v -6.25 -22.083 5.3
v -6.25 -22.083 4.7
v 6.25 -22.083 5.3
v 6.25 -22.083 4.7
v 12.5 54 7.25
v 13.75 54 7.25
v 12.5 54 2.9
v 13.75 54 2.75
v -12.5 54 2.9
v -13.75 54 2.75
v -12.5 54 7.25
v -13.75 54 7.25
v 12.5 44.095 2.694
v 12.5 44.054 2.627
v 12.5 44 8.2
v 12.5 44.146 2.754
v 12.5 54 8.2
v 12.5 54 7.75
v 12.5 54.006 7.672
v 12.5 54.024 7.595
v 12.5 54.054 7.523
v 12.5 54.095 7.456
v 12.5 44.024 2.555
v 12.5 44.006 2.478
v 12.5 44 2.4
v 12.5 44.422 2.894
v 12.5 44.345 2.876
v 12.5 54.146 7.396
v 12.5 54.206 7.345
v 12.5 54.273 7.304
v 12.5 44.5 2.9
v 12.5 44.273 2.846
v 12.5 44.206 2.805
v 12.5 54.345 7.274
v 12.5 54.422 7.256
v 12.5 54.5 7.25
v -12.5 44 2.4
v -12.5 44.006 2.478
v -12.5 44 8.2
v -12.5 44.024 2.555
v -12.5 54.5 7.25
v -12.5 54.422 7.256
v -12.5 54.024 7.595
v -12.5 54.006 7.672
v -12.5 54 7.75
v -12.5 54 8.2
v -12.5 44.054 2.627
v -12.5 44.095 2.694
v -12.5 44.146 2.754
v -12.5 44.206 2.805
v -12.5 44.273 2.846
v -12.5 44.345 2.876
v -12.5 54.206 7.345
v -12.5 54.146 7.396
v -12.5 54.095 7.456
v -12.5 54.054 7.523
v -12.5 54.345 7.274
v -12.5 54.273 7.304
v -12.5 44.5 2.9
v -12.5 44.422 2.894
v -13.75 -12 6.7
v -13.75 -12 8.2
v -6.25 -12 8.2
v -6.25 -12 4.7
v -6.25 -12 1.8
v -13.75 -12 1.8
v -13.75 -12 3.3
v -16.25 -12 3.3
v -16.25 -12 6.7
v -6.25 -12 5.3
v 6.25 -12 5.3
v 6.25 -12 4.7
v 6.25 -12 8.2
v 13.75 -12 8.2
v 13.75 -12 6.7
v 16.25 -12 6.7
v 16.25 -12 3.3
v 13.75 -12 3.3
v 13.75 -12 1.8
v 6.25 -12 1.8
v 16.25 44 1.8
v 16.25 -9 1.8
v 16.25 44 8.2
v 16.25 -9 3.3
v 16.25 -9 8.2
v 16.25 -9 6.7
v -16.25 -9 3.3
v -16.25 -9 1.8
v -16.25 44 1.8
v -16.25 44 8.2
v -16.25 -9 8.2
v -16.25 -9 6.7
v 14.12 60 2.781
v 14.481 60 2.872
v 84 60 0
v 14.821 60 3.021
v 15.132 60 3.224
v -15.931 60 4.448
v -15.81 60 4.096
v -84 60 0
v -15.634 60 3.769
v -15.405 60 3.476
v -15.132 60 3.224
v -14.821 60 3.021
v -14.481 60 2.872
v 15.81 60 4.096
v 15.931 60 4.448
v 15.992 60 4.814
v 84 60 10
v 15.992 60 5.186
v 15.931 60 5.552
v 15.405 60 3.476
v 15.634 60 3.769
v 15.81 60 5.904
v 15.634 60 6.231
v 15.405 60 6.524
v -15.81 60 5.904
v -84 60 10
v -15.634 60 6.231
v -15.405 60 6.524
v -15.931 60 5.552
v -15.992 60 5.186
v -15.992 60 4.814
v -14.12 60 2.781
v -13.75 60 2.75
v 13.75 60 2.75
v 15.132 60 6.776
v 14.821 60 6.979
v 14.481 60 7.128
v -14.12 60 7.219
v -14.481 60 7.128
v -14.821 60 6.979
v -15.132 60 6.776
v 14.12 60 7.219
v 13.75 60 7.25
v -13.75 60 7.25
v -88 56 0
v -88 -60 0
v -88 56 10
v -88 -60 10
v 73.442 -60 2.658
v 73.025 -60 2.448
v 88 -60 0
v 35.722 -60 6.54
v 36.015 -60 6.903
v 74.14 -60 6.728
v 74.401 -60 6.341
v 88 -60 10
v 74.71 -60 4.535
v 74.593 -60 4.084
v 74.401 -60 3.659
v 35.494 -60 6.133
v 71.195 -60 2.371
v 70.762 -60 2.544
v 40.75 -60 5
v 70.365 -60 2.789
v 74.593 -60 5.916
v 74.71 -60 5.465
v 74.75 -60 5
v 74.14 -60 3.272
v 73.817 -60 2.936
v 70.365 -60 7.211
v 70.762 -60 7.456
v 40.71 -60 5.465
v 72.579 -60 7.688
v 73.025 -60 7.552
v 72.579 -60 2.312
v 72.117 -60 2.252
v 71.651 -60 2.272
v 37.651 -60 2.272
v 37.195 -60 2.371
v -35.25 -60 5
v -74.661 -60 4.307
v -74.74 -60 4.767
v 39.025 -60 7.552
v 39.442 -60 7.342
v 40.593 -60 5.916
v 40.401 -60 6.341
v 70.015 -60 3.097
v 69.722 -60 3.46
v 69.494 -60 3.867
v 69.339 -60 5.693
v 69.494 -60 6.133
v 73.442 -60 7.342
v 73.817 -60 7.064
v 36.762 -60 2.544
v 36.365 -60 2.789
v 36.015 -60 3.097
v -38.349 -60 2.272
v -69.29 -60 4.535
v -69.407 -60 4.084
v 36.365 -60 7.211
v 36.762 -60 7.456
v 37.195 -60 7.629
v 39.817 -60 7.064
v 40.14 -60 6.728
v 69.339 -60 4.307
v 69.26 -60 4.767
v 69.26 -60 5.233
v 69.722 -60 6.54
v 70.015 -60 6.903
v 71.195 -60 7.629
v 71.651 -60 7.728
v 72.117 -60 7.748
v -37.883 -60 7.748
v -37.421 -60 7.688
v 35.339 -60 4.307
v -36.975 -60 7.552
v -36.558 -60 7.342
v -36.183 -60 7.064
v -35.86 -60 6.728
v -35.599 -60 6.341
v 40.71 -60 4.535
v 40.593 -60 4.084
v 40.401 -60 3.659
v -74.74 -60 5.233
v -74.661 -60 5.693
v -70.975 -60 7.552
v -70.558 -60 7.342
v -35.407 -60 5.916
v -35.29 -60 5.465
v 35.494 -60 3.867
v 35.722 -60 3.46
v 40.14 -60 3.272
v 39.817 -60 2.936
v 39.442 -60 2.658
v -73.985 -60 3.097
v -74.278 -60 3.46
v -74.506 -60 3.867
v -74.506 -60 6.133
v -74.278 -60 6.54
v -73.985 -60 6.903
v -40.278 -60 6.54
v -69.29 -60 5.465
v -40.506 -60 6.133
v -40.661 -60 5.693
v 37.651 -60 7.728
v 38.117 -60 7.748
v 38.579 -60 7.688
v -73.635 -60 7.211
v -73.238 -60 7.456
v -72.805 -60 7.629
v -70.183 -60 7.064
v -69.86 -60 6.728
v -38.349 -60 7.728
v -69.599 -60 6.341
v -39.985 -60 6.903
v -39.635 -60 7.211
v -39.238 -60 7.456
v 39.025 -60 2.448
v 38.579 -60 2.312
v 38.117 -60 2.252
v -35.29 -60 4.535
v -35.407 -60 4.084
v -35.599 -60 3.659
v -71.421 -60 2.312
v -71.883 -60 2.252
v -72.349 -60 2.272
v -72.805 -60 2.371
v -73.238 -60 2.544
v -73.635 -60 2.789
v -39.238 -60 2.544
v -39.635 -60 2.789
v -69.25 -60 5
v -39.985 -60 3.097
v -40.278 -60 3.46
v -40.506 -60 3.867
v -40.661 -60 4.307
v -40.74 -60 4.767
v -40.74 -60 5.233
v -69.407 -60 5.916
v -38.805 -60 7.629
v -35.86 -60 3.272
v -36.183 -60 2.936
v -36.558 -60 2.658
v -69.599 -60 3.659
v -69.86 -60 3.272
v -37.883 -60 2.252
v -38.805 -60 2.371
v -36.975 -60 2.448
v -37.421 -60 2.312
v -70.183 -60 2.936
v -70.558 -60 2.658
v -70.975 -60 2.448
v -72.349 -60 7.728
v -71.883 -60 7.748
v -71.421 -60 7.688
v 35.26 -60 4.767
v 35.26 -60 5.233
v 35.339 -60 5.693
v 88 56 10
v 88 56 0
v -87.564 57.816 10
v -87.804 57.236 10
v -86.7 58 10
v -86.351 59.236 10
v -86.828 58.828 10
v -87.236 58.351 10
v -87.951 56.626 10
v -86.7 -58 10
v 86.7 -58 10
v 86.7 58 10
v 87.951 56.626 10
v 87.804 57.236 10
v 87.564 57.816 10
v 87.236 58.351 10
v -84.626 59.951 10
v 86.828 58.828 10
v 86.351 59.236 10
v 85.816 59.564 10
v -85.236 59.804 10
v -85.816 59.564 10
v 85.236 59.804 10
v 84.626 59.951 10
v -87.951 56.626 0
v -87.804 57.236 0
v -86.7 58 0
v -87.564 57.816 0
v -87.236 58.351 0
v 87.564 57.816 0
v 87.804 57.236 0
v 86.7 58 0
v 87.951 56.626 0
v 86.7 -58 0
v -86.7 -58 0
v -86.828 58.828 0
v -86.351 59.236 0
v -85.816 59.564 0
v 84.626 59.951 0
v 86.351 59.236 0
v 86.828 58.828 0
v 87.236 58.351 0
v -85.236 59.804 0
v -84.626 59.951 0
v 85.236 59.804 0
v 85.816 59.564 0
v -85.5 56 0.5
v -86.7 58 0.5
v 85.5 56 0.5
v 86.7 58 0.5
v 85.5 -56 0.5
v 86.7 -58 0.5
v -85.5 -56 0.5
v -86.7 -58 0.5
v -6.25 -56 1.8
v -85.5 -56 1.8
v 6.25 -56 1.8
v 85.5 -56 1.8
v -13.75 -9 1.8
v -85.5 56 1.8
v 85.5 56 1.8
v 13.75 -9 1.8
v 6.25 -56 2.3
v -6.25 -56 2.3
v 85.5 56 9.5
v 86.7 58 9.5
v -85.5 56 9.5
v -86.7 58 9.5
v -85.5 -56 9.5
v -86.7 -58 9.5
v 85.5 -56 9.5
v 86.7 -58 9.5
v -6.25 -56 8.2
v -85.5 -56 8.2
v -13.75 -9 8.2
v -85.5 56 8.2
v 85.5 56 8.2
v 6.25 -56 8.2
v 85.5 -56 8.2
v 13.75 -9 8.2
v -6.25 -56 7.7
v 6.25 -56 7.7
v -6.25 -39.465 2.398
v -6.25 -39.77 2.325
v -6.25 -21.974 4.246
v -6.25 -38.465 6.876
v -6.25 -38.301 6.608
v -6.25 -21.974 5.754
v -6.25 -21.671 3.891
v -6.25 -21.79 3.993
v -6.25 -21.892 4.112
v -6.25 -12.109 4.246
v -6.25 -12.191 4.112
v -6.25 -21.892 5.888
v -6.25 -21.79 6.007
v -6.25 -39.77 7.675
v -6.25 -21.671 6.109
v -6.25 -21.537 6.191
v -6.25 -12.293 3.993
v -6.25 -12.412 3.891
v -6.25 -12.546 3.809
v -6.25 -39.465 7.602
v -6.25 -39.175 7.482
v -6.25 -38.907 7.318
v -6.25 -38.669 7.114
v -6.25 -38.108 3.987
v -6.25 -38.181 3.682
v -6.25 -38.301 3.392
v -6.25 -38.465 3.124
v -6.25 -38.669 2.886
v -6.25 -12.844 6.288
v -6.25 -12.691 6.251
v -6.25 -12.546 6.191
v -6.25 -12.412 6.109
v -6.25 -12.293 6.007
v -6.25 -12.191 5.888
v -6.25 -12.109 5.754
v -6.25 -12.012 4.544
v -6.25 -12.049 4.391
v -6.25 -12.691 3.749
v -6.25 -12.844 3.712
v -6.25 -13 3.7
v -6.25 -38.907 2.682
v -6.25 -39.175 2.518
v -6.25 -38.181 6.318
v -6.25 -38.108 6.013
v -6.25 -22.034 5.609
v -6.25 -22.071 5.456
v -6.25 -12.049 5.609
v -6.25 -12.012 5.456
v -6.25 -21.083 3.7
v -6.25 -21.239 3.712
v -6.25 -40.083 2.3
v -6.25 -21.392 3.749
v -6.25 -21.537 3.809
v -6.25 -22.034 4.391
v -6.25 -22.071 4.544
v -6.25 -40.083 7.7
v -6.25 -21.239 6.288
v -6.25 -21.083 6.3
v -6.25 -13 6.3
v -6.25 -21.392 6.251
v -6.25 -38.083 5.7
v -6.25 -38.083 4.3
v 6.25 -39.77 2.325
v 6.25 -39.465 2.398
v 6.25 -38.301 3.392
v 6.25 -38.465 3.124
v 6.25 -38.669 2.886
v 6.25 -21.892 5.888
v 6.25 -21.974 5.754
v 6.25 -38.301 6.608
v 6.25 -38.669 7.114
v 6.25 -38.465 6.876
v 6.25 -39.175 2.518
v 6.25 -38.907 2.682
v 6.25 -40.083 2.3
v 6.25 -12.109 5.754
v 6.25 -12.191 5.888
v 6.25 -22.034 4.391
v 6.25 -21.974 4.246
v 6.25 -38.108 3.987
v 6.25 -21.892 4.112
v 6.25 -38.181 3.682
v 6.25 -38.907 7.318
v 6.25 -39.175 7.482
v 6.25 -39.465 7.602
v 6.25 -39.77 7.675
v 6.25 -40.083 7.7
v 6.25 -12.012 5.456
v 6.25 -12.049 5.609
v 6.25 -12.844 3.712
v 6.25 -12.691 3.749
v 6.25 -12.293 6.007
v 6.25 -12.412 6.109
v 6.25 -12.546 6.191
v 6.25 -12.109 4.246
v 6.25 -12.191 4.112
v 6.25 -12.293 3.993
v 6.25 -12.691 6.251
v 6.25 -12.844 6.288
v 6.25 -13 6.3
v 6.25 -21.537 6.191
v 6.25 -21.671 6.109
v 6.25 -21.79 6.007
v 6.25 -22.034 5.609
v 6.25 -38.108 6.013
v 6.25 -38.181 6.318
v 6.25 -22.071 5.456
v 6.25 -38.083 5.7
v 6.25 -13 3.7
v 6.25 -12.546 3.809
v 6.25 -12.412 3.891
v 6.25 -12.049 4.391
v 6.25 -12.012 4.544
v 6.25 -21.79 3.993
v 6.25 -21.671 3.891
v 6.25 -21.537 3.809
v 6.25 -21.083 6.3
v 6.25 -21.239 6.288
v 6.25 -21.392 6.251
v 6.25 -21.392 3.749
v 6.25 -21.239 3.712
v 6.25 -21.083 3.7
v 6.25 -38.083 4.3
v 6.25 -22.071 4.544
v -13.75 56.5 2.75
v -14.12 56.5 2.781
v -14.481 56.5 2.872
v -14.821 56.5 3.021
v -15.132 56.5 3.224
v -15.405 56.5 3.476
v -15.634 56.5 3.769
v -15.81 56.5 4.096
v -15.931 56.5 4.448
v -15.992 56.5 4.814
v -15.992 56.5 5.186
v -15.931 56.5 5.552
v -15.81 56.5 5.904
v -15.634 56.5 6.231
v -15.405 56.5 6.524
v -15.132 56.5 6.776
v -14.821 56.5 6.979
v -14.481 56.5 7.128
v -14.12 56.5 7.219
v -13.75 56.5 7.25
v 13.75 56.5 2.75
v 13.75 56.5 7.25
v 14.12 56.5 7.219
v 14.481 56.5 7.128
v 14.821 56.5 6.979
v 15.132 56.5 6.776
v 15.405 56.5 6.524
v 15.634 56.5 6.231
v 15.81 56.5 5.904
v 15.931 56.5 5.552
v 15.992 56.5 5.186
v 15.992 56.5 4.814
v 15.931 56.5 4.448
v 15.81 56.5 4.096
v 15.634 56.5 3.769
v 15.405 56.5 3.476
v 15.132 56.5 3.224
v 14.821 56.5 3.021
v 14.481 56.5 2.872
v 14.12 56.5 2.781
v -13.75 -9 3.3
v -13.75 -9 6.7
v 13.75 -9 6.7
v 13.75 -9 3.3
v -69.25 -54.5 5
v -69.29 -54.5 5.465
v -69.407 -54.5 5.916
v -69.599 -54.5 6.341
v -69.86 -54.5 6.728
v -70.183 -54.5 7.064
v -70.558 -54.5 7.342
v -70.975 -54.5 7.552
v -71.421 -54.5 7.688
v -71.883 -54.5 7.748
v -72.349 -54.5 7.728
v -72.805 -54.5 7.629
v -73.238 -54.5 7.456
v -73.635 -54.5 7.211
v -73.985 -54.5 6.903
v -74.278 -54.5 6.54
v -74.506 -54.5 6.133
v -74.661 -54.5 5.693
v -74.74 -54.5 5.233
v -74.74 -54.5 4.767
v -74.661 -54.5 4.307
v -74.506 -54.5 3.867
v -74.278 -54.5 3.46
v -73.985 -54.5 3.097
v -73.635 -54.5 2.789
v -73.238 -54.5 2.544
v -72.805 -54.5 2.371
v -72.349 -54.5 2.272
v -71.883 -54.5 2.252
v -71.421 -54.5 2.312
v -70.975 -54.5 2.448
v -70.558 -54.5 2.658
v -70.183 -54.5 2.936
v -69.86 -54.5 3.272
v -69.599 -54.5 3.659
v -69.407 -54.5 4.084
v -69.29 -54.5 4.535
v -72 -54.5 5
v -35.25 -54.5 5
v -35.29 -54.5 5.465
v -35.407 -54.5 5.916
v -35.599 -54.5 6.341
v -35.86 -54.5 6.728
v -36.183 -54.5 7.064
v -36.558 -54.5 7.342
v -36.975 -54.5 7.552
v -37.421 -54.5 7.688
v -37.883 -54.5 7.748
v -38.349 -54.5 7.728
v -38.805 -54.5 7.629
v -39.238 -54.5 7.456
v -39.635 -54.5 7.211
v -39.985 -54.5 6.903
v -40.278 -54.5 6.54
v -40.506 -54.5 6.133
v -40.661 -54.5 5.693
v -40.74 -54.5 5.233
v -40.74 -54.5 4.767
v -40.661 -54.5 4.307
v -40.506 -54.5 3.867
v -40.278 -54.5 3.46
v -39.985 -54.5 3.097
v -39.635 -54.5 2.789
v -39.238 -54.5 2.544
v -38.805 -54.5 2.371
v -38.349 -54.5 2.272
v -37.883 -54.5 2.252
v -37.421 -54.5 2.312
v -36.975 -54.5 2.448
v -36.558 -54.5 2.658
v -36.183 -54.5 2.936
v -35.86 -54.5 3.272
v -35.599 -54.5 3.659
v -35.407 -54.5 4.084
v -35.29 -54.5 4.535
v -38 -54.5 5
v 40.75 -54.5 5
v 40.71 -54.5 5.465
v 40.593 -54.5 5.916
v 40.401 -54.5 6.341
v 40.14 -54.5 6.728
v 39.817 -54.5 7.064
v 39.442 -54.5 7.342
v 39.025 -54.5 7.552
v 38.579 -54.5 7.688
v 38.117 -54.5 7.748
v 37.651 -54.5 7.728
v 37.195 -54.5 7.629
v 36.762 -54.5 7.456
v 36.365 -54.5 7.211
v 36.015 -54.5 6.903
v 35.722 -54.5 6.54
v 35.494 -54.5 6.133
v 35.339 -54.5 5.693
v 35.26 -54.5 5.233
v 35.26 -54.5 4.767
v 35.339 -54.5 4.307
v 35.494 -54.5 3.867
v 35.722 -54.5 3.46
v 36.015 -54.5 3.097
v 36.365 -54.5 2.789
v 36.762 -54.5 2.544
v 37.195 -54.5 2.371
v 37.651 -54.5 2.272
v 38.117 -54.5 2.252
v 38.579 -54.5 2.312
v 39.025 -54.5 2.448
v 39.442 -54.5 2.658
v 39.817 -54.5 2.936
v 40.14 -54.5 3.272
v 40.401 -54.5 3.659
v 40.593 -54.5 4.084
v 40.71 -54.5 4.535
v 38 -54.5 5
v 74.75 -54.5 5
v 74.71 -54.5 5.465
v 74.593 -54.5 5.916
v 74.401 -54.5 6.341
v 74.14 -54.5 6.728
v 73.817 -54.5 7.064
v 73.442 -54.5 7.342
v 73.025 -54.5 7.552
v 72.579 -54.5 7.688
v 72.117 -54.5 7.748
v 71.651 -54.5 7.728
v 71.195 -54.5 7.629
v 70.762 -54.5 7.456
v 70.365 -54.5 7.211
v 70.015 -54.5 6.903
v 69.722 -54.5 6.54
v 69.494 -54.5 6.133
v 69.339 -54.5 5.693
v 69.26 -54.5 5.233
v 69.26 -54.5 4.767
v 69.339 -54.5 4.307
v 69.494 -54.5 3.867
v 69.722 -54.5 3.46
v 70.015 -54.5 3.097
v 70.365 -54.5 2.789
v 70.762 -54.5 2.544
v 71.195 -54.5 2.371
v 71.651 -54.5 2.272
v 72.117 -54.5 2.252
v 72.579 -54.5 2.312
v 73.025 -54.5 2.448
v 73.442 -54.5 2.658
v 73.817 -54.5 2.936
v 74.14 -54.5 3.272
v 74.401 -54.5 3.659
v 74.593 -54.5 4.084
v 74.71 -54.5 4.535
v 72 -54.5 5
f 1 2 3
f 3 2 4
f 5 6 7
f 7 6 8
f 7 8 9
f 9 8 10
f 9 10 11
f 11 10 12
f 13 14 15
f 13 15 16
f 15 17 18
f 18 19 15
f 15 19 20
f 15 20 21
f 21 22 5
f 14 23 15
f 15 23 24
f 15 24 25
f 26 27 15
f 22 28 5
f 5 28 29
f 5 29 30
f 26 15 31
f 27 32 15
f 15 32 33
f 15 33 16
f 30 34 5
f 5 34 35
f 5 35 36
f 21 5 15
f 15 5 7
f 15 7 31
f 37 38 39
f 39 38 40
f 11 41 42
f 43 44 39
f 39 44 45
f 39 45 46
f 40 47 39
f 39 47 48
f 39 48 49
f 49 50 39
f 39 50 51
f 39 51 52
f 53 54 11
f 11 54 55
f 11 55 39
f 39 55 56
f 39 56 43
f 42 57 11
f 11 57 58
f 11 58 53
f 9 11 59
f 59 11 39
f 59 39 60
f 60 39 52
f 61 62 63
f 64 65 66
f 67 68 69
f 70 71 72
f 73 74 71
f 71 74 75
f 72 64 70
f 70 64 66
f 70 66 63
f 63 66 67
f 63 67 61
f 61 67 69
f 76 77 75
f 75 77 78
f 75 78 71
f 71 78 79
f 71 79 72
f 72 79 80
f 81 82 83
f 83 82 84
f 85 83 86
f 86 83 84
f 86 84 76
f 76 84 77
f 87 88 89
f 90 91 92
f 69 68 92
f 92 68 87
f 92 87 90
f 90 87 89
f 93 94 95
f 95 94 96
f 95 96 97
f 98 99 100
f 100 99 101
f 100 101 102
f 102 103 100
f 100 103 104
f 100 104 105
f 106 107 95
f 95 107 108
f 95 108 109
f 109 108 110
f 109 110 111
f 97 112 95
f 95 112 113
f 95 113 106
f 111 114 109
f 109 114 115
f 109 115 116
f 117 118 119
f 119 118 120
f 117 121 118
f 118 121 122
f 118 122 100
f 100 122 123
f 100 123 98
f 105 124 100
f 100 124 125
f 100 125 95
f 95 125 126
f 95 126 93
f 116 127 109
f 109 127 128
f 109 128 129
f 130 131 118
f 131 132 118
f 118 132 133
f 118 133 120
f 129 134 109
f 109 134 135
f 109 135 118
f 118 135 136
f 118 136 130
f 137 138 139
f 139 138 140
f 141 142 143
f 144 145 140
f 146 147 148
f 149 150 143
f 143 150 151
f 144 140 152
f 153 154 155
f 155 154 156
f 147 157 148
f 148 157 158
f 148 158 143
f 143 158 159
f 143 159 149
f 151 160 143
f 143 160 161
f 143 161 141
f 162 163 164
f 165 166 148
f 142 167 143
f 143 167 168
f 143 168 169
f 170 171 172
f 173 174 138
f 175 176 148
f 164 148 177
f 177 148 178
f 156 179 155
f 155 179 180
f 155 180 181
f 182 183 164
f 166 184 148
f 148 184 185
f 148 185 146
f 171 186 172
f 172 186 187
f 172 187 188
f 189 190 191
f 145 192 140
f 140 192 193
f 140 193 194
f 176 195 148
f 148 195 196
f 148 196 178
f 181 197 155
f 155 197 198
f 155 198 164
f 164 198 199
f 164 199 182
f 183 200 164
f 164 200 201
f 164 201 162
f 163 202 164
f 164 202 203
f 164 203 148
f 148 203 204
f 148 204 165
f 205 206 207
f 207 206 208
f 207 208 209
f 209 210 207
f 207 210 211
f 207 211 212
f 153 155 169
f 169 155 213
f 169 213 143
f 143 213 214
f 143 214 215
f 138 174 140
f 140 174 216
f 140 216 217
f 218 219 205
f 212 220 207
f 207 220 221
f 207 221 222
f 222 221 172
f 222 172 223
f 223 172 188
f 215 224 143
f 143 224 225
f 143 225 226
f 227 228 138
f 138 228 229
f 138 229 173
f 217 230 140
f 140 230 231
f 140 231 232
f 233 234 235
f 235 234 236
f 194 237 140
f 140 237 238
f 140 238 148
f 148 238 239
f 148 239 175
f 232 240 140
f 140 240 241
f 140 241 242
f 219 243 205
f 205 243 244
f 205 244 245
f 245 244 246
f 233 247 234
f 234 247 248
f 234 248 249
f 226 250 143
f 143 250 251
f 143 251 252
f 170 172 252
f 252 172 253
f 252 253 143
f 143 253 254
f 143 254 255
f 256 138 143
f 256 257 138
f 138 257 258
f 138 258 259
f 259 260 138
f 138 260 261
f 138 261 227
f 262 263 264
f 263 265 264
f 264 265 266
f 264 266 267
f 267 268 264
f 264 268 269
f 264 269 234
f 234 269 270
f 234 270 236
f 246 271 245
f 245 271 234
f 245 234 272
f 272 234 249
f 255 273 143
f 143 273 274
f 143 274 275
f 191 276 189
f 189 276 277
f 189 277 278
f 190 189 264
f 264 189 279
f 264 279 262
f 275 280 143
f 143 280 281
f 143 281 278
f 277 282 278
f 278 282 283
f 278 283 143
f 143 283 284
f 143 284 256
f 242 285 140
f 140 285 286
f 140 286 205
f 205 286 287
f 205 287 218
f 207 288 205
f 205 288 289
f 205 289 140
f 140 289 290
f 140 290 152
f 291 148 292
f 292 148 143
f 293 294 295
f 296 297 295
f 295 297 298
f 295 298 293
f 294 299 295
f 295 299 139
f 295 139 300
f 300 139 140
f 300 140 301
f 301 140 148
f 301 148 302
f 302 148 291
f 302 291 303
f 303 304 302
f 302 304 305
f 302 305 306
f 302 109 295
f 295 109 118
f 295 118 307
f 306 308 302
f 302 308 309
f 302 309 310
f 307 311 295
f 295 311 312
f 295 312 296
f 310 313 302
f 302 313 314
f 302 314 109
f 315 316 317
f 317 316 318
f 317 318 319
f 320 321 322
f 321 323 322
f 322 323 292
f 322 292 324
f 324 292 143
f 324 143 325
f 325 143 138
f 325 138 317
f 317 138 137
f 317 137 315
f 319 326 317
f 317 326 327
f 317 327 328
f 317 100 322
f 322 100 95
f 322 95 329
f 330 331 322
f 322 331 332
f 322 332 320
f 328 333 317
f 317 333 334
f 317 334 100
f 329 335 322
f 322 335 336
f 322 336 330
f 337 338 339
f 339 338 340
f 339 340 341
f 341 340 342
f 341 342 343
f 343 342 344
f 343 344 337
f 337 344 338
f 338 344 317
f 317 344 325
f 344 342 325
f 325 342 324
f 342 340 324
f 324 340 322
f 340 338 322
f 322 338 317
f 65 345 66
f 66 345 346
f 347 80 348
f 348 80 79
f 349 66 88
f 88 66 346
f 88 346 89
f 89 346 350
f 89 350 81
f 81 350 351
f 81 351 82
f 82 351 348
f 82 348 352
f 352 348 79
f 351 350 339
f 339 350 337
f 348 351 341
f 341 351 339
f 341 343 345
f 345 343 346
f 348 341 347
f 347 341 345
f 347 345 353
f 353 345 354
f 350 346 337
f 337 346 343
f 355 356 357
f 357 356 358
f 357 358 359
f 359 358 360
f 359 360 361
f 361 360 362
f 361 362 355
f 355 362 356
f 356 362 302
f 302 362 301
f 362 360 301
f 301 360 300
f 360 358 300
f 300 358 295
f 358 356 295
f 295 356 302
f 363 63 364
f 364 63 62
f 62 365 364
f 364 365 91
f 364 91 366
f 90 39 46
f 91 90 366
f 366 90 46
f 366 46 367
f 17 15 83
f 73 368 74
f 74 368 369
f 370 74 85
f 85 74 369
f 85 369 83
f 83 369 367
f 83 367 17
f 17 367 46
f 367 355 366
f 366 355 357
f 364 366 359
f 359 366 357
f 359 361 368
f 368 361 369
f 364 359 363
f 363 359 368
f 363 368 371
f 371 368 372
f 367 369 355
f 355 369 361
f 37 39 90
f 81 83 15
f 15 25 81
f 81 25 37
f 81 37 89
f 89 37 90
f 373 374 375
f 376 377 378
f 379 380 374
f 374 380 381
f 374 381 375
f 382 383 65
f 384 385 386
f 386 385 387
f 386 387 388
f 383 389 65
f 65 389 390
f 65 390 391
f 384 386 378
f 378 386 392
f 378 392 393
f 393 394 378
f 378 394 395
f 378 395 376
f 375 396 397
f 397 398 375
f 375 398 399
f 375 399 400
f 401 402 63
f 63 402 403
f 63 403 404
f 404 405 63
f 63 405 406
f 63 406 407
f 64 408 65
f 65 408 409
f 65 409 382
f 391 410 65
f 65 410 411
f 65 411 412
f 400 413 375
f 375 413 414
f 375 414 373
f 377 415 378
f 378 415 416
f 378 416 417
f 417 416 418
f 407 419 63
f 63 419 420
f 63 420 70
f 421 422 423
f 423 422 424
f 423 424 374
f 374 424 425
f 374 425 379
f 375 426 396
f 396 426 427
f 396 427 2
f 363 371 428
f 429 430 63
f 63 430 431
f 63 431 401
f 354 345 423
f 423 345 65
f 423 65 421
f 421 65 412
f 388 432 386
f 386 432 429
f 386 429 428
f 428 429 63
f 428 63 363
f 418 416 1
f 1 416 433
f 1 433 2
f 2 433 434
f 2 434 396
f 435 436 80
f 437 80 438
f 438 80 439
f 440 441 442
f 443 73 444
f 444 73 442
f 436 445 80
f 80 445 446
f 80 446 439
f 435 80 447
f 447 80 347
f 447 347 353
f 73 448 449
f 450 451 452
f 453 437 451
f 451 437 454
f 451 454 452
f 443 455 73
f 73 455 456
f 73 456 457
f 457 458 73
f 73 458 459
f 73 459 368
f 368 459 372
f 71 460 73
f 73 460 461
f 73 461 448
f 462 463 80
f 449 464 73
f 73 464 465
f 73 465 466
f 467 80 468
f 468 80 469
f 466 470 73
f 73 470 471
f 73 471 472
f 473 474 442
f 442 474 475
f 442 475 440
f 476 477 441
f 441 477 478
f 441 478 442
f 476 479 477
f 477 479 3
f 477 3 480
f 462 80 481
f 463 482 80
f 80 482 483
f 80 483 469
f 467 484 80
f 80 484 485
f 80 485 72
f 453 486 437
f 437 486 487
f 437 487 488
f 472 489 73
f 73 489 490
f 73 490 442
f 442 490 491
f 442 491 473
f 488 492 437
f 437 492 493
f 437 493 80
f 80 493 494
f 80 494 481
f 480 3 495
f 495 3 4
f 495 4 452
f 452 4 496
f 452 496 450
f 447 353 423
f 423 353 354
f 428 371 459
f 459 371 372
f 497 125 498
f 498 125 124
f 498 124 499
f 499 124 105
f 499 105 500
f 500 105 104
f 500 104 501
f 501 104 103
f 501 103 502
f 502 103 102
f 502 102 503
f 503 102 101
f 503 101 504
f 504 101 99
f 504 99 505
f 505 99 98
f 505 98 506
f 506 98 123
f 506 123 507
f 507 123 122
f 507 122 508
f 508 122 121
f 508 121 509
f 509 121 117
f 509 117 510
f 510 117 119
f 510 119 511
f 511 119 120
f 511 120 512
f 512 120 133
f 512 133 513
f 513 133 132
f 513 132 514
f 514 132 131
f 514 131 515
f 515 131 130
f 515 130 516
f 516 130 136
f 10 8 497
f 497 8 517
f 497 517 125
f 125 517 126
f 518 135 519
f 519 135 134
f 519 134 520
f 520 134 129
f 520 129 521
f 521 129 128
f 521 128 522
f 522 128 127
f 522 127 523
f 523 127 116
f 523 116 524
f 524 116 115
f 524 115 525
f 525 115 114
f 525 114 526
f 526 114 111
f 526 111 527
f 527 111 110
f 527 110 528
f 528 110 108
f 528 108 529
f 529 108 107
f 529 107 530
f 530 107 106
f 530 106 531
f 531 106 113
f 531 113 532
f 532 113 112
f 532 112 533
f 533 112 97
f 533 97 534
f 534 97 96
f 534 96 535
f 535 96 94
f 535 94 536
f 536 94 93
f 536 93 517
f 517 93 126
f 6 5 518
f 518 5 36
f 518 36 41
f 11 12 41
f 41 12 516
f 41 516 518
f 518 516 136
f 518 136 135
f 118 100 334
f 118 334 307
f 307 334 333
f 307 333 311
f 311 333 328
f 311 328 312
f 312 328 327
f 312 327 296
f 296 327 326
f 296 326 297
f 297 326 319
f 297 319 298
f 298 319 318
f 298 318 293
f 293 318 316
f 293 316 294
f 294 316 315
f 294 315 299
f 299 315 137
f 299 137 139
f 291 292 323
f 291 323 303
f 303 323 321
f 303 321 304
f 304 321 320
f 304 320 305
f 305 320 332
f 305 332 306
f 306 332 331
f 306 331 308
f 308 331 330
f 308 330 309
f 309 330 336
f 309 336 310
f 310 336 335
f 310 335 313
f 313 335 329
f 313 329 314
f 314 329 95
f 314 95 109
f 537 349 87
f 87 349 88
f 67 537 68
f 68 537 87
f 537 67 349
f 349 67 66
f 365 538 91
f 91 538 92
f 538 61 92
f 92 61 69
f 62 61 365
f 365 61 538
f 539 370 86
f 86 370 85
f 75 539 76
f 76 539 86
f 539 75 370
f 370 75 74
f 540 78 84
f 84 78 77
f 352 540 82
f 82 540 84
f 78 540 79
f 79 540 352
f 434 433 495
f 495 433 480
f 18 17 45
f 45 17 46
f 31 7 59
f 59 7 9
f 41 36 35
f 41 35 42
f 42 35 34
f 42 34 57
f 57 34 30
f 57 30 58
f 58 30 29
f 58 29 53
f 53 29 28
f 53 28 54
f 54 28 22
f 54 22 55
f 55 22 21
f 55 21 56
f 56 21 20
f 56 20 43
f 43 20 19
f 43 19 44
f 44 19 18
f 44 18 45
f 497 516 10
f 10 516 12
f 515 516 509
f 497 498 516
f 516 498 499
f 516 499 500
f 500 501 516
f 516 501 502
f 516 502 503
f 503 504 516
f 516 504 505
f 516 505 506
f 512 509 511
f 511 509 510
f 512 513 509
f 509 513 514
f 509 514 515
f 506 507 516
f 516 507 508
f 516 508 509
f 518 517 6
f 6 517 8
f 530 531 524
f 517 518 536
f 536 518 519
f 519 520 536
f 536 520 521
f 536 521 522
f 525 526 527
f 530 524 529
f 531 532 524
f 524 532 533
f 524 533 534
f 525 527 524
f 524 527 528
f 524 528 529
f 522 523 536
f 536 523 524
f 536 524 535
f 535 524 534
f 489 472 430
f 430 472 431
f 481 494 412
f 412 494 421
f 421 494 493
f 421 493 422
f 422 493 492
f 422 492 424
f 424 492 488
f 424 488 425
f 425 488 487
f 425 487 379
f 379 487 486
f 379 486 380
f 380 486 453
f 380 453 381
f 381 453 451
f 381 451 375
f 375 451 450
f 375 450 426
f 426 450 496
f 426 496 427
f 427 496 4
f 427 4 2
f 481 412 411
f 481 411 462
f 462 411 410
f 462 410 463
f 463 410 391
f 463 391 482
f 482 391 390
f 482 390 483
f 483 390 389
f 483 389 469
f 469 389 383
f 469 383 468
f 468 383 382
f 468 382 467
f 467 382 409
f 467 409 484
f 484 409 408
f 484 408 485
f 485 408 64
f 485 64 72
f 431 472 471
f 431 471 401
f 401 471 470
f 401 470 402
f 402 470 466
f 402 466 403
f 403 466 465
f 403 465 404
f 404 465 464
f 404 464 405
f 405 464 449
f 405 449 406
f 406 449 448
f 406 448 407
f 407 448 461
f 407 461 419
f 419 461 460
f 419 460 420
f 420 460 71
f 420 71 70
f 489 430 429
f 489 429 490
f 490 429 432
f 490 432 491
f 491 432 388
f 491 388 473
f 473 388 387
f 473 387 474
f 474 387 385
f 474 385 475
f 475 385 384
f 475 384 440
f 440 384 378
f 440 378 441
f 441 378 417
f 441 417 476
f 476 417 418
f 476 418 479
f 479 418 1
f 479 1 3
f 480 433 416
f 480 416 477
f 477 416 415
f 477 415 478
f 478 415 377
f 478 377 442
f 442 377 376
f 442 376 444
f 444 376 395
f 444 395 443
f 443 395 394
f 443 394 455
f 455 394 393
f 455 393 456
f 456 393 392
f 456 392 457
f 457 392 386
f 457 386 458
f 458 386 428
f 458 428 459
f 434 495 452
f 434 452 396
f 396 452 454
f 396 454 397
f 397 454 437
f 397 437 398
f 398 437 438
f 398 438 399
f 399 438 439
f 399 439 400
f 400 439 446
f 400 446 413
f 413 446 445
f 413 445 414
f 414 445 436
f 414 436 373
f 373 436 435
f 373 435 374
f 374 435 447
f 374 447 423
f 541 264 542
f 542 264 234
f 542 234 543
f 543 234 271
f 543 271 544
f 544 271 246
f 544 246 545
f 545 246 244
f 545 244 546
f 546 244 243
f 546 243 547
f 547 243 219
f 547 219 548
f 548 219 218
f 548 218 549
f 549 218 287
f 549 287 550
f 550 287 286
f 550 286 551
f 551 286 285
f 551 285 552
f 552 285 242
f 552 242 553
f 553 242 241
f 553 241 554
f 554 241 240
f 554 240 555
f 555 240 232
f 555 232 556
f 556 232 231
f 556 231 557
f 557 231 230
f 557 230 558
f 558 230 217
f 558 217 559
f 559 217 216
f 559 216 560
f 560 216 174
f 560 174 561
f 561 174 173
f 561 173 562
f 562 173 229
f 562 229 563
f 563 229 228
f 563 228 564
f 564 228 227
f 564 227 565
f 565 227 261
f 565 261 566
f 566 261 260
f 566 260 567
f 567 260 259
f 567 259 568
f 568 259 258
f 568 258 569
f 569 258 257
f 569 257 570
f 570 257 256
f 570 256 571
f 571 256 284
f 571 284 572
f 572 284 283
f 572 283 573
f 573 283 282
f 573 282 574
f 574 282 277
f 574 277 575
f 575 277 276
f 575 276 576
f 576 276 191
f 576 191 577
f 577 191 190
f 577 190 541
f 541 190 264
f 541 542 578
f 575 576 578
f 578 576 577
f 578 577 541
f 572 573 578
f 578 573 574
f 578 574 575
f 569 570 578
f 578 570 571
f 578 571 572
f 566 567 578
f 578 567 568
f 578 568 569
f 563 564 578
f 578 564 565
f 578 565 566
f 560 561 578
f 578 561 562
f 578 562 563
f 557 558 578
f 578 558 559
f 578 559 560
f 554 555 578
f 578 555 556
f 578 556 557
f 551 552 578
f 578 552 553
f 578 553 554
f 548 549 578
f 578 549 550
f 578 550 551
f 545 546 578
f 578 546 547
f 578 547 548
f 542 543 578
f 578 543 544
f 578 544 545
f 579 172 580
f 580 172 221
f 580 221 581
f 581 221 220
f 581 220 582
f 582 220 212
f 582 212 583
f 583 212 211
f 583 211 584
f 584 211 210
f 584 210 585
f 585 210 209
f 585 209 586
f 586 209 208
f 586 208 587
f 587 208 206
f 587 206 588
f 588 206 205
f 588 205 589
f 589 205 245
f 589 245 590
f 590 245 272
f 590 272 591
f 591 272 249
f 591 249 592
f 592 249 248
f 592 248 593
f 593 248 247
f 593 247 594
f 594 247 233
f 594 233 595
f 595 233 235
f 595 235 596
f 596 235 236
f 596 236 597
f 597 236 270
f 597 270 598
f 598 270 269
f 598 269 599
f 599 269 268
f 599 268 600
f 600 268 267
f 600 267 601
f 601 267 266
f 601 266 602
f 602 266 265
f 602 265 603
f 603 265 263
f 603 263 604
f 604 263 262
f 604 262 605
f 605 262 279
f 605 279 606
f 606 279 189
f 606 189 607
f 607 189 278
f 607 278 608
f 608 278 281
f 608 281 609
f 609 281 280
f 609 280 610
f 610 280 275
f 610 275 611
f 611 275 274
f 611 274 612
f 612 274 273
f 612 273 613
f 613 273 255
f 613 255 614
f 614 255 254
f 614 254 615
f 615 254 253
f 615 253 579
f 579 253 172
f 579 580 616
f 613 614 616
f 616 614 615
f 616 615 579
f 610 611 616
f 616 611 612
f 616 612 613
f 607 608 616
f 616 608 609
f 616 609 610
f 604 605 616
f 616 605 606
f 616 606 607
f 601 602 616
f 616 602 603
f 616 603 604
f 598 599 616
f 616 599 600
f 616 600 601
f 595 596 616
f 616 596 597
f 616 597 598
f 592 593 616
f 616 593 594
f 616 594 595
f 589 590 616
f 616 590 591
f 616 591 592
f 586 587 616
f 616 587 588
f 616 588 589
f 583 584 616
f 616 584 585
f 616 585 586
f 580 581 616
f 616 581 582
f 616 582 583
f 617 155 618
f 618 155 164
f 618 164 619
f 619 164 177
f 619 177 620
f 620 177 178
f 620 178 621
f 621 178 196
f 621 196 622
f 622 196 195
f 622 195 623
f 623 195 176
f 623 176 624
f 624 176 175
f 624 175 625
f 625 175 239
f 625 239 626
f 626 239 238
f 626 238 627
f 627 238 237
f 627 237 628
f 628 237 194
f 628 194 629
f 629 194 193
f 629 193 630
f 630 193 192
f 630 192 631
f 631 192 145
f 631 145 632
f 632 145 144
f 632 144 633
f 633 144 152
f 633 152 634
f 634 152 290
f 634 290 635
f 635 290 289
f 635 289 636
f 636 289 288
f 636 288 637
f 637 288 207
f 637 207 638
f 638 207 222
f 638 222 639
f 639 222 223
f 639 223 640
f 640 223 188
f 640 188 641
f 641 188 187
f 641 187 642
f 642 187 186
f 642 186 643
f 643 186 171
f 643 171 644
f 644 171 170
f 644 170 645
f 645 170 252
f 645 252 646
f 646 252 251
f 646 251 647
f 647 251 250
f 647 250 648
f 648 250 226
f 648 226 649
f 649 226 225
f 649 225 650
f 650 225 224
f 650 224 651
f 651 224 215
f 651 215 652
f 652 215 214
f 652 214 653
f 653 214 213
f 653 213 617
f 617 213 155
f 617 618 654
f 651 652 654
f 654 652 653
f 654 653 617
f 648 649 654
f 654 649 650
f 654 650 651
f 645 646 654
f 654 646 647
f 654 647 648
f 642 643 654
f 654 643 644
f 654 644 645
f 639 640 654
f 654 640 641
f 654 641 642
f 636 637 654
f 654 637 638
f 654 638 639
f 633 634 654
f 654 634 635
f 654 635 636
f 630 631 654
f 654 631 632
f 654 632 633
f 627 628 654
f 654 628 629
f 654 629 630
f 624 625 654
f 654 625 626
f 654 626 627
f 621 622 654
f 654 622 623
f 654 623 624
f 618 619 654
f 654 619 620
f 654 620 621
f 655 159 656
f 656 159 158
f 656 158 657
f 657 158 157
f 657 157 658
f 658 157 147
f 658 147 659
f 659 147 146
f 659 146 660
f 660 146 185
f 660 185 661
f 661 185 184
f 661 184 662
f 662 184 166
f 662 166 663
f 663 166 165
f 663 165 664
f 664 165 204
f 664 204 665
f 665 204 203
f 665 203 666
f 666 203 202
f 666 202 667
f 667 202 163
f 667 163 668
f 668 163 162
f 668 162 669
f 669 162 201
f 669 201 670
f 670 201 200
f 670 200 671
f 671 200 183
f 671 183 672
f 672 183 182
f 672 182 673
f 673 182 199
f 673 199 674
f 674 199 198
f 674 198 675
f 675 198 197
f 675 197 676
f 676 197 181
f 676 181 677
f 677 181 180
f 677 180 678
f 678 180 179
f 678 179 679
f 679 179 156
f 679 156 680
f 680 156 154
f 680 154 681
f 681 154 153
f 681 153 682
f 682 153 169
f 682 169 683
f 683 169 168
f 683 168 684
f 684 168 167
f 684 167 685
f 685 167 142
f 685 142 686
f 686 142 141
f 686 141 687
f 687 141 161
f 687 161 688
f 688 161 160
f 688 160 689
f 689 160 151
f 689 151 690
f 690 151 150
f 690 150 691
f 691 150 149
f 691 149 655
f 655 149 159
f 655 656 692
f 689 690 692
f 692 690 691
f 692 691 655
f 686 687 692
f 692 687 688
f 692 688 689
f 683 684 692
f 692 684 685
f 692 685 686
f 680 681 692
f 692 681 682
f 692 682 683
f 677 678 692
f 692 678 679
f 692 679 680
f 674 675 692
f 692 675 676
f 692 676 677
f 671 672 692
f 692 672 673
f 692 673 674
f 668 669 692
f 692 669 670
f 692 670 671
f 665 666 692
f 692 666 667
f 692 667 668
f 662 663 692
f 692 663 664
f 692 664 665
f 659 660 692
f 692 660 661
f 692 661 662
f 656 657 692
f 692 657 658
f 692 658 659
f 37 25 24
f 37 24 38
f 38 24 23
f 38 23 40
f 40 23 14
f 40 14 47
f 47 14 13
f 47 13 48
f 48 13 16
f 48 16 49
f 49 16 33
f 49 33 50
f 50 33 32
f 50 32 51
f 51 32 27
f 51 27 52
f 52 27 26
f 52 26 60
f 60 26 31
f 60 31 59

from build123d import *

# Parameters (mm, degrees)
SKETCH_1_W           = 176
SKETCH_1_H           = 120
EXTRUDE_1_DEPTH      = 10
SKETCH_2_W           = 171
SKETCH_2_H           = 112
CUT_EXTRUDE_1_DEPTH  = 1.8
SKETCH_3_W           = 171
SKETCH_3_H           = 112
CUT_EXTRUDE_2_DEPTH  = 1.8
SKETCH_5_W           = 173.4
SKETCH_5_H           = 116
CUT_EXTRUDE_3_DEPTH  = 0.5
SKETCH_6_W           = 173.4
SKETCH_6_H           = 116
CUT_EXTRUDE_4_DEPTH  = 0.5
SKETCH_7_W           = 32.5
SKETCH_7_H           = 56
CUT_EXTRUDE_5_DEPTH  = 107.823405675
SKETCH_8_W           = 12.5
SKETCH_8_H           = 44
CUT_EXTRUDE_6_DEPTH  = 0.5
SKETCH_9_W           = 12.5
SKETCH_9_H           = 44
CUT_EXTRUDE_7_DEPTH  = 0.5
SKETCH_10_W          = 25
SKETCH_10_H          = 12
CUT_EXTRUDE_8_DEPTH  = 0.8
CUT_EXTRUDE_10_DEPTH = 6
FILLET_1_R           = 4
FILLET_2_R           = 4
SKETCH_18_W          = 1.5
SKETCH_18_H          = 3
EXTRUDE_3_DEPTH      = 2.5
SKETCH_20_W          = 1.5
SKETCH_20_H          = 3
EXTRUDE_4_DEPTH      = 2.5
SKETCH_21_W          = 12.5
SKETCH_21_H          = 16
CUT_EXTRUDE_12_DEPTH = 107.786188245
SKETCH_22_W          = 25
SKETCH_22_H          = 10
CUT_EXTRUDE_13_DEPTH = 4.5
SKETCH_23_W          = 25
SKETCH_23_H          = 2
EXTRUDE_5_DEPTH      = 0.8
FILLET_15_R          = 0.5
EXTRUDE_START        = 2.5
EXTRUDE_6_DEPTH      = 2.5
SKETCH_25_W          = 12.5
SKETCH_25_H          = 10.082968054
CUT_EXTRUDE_14_DEPTH = 1.4
SKETCH_26_W          = 12.5
SKETCH_26_H          = 10.082968054
CUT_EXTRUDE_15_DEPTH = 1.4
FILLET_16_R          = 1
FILLET_17_R          = 1
FILLET_18_R          = 1
FILLET_19_R          = 1
FILLET_21_R          = 2
FILLET_22_R          = 2
SKETCH_28_R          = 2.75
CUT_EXTRUDE_16_DEPTH = 5.5
FILLET_23_R          = 0.5


with BuildPart() as part:
    # 草图1 → 凸台-拉伸1 (new body)
    with BuildSketch(Plane.XY):
        Rectangle(SKETCH_1_W, SKETCH_1_H)
    extrude(amount=EXTRUDE_1_DEPTH)

    # 草图2 → 切除-拉伸1 (cut)
    with BuildSketch(Plane.XY.offset(10)):
        Rectangle(SKETCH_2_W, SKETCH_2_H)
    extrude(amount=-CUT_EXTRUDE_1_DEPTH, mode=Mode.SUBTRACT)

    # 草图3 → 切除-拉伸2 (cut)
    with BuildSketch(Plane(origin=(0, 0, 0), x_dir=(-1, 0, 0), z_dir=(0, 0, -1))):
        Rectangle(SKETCH_3_W, SKETCH_3_H)
    extrude(amount=-CUT_EXTRUDE_2_DEPTH, mode=Mode.SUBTRACT)

    # 草图5 → 切除-拉伸3 (cut)
    with BuildSketch(Plane(origin=(0, 0, 0), x_dir=(-1, 0, 0), z_dir=(0, 0, -1))):
        Rectangle(SKETCH_5_W, SKETCH_5_H)
    extrude(amount=-CUT_EXTRUDE_3_DEPTH, mode=Mode.SUBTRACT)

    # 草图6 → 切除-拉伸4 (cut)
    with BuildSketch(Plane.XY.offset(10)):
        Rectangle(SKETCH_6_W, SKETCH_6_H)
    extrude(amount=-CUT_EXTRUDE_4_DEPTH, mode=Mode.SUBTRACT)

    # 草图7 → 切除-拉伸5 (cut, through all)
    with BuildSketch(Plane(origin=(0, 0, 1.8), x_dir=(-1, 0, 0), z_dir=(0, 0, -1))):
        with Locations((0, 16)):
            Rectangle(SKETCH_7_W, SKETCH_7_H)
    extrude(amount=-CUT_EXTRUDE_5_DEPTH, mode=Mode.SUBTRACT)

    # 草图8 → 切除-拉伸6 (cut)
    with BuildSketch(Plane(origin=(0, 0, 1.8), x_dir=(-1, 0, 0), z_dir=(0, 0, -1))):
        with Locations((0, -34)):
            Rectangle(SKETCH_8_W, SKETCH_8_H)
    extrude(amount=-CUT_EXTRUDE_6_DEPTH, mode=Mode.SUBTRACT)

    # 草图9 → 切除-拉伸7 (cut)
    with BuildSketch(Plane.XY.offset(8.2)):
        with Locations((0, -34)):
            Rectangle(SKETCH_9_W, SKETCH_9_H)
    extrude(amount=-CUT_EXTRUDE_7_DEPTH, mode=Mode.SUBTRACT)

    # 草图10 → 切除-拉伸8 (cut)
    with BuildSketch(Plane.XY.offset(8.2)):
        with Locations((0, 50)):
            Rectangle(SKETCH_10_W, SKETCH_10_H)
    extrude(amount=-CUT_EXTRUDE_8_DEPTH, mode=Mode.SUBTRACT)

    # 草图13 → 切除-拉伸10 (cut)
    with BuildSketch(Plane(origin=(0, 60, 0), x_dir=(1, 0, 0), z_dir=(0, 1, 0))):
        with BuildLine():
            Line((-13.75, -2.75), (13.75, -2.75))
            ThreePointArc((13.75, -2.75), (16, -5), (13.75, -7.25))
            Line((13.75, -7.25), (-13.75, -7.25))
            ThreePointArc((-13.75, -7.25), (-16, -5), (-13.75, -2.75))
        make_face()
    extrude(amount=-CUT_EXTRUDE_10_DEPTH, mode=Mode.SUBTRACT)

    # 圆角1
    fillet_1_edges = [part.edges().sort_by_distance(p)[0] for p in [
        (-88, 60, 5),
    ]]
    fillet(fillet_1_edges, radius=FILLET_1_R)

    # 圆角2
    fillet_2_edges = [part.edges().sort_by_distance(p)[0] for p in [
        (88, 60, 5),
    ]]
    fillet(fillet_2_edges, radius=FILLET_2_R)

    # 草图18 → 凸台-拉伸3 (add)
    with BuildSketch(Plane(origin=(-16.25, 0, 0), x_dir=(0, 0, -1), z_dir=(1, 0, 0))):
        with Locations((-2.55, -10.5)):
            Rectangle(SKETCH_18_W, SKETCH_18_H)
        with Locations((-7.45, -10.5)):
            Rectangle(SKETCH_18_W, SKETCH_18_H)
    extrude(amount=EXTRUDE_3_DEPTH)

    # 草图20 → 凸台-拉伸4 (add)
    with BuildSketch(Plane.ZY.offset(-16.25)):
        with Locations((7.45, -10.5)):
            Rectangle(SKETCH_20_W, SKETCH_20_H)
        with Locations((2.55, -10.5)):
            Rectangle(SKETCH_20_W, SKETCH_20_H)
    extrude(amount=EXTRUDE_4_DEPTH)

    # 草图21 → 切除-拉伸12 (cut, through all)
    with BuildSketch(Plane(origin=(0, 0, 2.3), x_dir=(-1, 0, 0), z_dir=(0, 0, -1))):
        with Locations((0, -30.082968054)):
            Rectangle(SKETCH_21_W, SKETCH_21_H)
    extrude(amount=-CUT_EXTRUDE_12_DEPTH, mode=Mode.SUBTRACT)

    # 草图22 → 切除-拉伸13 (cut)
    with BuildSketch(Plane.XY.offset(7.4)):
        with Locations((0, 49)):
            Rectangle(SKETCH_22_W, SKETCH_22_H)
    extrude(amount=-CUT_EXTRUDE_13_DEPTH, mode=Mode.SUBTRACT)

    # 草图23 → 凸台-拉伸5 (add)
    with BuildSketch(Plane.XY.offset(7.4)):
        with Locations((0, 55)):
            Rectangle(SKETCH_23_W, SKETCH_23_H)
    extrude(amount=EXTRUDE_5_DEPTH)

    # 圆角15
    fillet_15_edges = [part.edges().sort_by_distance(p)[0] for p in [
        (0, 54, 7.25),
    ]]
    fillet(fillet_15_edges, radius=FILLET_15_R)

    # 草图24 → 凸台-拉伸6 (add)
    with BuildSketch(Plane(origin=(0, 54, 0), x_dir=(1, 0, 0), z_dir=(0, 1, 0)).offset(EXTRUDE_START)):
        with BuildLine():
            Line((-13.75, -2.75), (-13.75, -7.25))
            ThreePointArc((-13.75, -7.25), (-16, -5), (-13.75, -2.75))
        make_face()
        with BuildLine():
            Line((13.75, -2.75), (13.75, -7.25))
            ThreePointArc((13.75, -7.25), (16, -5), (13.75, -2.75))
        make_face()
    extrude(amount=-EXTRUDE_6_DEPTH)

    # 草图25 → 切除-拉伸14 (cut)
    with BuildSketch(Plane.XY.offset(7.7)):
        with Locations((0, -17.041484027)):
            Rectangle(SKETCH_25_W, SKETCH_25_H)
    extrude(amount=-CUT_EXTRUDE_14_DEPTH, mode=Mode.SUBTRACT)

    # 草图26 → 切除-拉伸15 (cut)
    with BuildSketch(Plane(origin=(0, 0, 2.3), x_dir=(-1, 0, 0), z_dir=(0, 0, -1))):
        with Locations((0, -17.041484027)):
            Rectangle(SKETCH_26_W, SKETCH_26_H)
    extrude(amount=-CUT_EXTRUDE_15_DEPTH, mode=Mode.SUBTRACT)

    # 圆角16
    fillet_16_edges = [part.edges().sort_by_distance(p)[0] for p in [
        (0, -22.082968054, 3.7),
    ]]
    fillet(fillet_16_edges, radius=FILLET_16_R)

    # 圆角17
    fillet_17_edges = [part.edges().sort_by_distance(p)[0] for p in [
        (0, -12, 3.7),
    ]]
    fillet(fillet_17_edges, radius=FILLET_17_R)

    # 圆角18
    fillet_18_edges = [part.edges().sort_by_distance(p)[0] for p in [
        (0, -12, 6.3),
    ]]
    fillet(fillet_18_edges, radius=FILLET_18_R)

    # 圆角19
    fillet_19_edges = [part.edges().sort_by_distance(p)[0] for p in [
        (0, -22.082968054, 6.3),
    ]]
    fillet(fillet_19_edges, radius=FILLET_19_R)

    # 圆角21
    fillet_21_edges = [part.edges().sort_by_distance(p)[0] for p in [
        (0, -38.082968054, 7.7),
    ]]
    fillet(fillet_21_edges, radius=FILLET_21_R)

    # 圆角22
    fillet_22_edges = [part.edges().sort_by_distance(p)[0] for p in [
        (0, -38.082968054, 2.3),
    ]]
    fillet(fillet_22_edges, radius=FILLET_22_R)

    # 草图28 → 切除-拉伸16 (cut)
    with BuildSketch(Plane(origin=(0, -60, 0), x_dir=(-1, 0, 0), z_dir=(0, -1, 0))):
        with Locations(Location((-72, -5, 0), (0, 0, 180))):
            Circle(SKETCH_28_R)
        with Locations(Location((-38, -5, 0), (0, 0, 180))):
            Circle(SKETCH_28_R)
        with Locations(Location((38, -5, 0), (0, 0, 180))):
            Circle(SKETCH_28_R)
        with Locations(Location((72, -5, 0), (0, 0, 180))):
            Circle(SKETCH_28_R)
    extrude(amount=-CUT_EXTRUDE_16_DEPTH, mode=Mode.SUBTRACT)

    # 圆角23
    fillet_23_edges = [part.edges().sort_by_distance(p)[0] for p in [
        (0, 44, 2.9),
    ]]
    fillet(fillet_23_edges, radius=FILLET_23_R)


solid = part.part
